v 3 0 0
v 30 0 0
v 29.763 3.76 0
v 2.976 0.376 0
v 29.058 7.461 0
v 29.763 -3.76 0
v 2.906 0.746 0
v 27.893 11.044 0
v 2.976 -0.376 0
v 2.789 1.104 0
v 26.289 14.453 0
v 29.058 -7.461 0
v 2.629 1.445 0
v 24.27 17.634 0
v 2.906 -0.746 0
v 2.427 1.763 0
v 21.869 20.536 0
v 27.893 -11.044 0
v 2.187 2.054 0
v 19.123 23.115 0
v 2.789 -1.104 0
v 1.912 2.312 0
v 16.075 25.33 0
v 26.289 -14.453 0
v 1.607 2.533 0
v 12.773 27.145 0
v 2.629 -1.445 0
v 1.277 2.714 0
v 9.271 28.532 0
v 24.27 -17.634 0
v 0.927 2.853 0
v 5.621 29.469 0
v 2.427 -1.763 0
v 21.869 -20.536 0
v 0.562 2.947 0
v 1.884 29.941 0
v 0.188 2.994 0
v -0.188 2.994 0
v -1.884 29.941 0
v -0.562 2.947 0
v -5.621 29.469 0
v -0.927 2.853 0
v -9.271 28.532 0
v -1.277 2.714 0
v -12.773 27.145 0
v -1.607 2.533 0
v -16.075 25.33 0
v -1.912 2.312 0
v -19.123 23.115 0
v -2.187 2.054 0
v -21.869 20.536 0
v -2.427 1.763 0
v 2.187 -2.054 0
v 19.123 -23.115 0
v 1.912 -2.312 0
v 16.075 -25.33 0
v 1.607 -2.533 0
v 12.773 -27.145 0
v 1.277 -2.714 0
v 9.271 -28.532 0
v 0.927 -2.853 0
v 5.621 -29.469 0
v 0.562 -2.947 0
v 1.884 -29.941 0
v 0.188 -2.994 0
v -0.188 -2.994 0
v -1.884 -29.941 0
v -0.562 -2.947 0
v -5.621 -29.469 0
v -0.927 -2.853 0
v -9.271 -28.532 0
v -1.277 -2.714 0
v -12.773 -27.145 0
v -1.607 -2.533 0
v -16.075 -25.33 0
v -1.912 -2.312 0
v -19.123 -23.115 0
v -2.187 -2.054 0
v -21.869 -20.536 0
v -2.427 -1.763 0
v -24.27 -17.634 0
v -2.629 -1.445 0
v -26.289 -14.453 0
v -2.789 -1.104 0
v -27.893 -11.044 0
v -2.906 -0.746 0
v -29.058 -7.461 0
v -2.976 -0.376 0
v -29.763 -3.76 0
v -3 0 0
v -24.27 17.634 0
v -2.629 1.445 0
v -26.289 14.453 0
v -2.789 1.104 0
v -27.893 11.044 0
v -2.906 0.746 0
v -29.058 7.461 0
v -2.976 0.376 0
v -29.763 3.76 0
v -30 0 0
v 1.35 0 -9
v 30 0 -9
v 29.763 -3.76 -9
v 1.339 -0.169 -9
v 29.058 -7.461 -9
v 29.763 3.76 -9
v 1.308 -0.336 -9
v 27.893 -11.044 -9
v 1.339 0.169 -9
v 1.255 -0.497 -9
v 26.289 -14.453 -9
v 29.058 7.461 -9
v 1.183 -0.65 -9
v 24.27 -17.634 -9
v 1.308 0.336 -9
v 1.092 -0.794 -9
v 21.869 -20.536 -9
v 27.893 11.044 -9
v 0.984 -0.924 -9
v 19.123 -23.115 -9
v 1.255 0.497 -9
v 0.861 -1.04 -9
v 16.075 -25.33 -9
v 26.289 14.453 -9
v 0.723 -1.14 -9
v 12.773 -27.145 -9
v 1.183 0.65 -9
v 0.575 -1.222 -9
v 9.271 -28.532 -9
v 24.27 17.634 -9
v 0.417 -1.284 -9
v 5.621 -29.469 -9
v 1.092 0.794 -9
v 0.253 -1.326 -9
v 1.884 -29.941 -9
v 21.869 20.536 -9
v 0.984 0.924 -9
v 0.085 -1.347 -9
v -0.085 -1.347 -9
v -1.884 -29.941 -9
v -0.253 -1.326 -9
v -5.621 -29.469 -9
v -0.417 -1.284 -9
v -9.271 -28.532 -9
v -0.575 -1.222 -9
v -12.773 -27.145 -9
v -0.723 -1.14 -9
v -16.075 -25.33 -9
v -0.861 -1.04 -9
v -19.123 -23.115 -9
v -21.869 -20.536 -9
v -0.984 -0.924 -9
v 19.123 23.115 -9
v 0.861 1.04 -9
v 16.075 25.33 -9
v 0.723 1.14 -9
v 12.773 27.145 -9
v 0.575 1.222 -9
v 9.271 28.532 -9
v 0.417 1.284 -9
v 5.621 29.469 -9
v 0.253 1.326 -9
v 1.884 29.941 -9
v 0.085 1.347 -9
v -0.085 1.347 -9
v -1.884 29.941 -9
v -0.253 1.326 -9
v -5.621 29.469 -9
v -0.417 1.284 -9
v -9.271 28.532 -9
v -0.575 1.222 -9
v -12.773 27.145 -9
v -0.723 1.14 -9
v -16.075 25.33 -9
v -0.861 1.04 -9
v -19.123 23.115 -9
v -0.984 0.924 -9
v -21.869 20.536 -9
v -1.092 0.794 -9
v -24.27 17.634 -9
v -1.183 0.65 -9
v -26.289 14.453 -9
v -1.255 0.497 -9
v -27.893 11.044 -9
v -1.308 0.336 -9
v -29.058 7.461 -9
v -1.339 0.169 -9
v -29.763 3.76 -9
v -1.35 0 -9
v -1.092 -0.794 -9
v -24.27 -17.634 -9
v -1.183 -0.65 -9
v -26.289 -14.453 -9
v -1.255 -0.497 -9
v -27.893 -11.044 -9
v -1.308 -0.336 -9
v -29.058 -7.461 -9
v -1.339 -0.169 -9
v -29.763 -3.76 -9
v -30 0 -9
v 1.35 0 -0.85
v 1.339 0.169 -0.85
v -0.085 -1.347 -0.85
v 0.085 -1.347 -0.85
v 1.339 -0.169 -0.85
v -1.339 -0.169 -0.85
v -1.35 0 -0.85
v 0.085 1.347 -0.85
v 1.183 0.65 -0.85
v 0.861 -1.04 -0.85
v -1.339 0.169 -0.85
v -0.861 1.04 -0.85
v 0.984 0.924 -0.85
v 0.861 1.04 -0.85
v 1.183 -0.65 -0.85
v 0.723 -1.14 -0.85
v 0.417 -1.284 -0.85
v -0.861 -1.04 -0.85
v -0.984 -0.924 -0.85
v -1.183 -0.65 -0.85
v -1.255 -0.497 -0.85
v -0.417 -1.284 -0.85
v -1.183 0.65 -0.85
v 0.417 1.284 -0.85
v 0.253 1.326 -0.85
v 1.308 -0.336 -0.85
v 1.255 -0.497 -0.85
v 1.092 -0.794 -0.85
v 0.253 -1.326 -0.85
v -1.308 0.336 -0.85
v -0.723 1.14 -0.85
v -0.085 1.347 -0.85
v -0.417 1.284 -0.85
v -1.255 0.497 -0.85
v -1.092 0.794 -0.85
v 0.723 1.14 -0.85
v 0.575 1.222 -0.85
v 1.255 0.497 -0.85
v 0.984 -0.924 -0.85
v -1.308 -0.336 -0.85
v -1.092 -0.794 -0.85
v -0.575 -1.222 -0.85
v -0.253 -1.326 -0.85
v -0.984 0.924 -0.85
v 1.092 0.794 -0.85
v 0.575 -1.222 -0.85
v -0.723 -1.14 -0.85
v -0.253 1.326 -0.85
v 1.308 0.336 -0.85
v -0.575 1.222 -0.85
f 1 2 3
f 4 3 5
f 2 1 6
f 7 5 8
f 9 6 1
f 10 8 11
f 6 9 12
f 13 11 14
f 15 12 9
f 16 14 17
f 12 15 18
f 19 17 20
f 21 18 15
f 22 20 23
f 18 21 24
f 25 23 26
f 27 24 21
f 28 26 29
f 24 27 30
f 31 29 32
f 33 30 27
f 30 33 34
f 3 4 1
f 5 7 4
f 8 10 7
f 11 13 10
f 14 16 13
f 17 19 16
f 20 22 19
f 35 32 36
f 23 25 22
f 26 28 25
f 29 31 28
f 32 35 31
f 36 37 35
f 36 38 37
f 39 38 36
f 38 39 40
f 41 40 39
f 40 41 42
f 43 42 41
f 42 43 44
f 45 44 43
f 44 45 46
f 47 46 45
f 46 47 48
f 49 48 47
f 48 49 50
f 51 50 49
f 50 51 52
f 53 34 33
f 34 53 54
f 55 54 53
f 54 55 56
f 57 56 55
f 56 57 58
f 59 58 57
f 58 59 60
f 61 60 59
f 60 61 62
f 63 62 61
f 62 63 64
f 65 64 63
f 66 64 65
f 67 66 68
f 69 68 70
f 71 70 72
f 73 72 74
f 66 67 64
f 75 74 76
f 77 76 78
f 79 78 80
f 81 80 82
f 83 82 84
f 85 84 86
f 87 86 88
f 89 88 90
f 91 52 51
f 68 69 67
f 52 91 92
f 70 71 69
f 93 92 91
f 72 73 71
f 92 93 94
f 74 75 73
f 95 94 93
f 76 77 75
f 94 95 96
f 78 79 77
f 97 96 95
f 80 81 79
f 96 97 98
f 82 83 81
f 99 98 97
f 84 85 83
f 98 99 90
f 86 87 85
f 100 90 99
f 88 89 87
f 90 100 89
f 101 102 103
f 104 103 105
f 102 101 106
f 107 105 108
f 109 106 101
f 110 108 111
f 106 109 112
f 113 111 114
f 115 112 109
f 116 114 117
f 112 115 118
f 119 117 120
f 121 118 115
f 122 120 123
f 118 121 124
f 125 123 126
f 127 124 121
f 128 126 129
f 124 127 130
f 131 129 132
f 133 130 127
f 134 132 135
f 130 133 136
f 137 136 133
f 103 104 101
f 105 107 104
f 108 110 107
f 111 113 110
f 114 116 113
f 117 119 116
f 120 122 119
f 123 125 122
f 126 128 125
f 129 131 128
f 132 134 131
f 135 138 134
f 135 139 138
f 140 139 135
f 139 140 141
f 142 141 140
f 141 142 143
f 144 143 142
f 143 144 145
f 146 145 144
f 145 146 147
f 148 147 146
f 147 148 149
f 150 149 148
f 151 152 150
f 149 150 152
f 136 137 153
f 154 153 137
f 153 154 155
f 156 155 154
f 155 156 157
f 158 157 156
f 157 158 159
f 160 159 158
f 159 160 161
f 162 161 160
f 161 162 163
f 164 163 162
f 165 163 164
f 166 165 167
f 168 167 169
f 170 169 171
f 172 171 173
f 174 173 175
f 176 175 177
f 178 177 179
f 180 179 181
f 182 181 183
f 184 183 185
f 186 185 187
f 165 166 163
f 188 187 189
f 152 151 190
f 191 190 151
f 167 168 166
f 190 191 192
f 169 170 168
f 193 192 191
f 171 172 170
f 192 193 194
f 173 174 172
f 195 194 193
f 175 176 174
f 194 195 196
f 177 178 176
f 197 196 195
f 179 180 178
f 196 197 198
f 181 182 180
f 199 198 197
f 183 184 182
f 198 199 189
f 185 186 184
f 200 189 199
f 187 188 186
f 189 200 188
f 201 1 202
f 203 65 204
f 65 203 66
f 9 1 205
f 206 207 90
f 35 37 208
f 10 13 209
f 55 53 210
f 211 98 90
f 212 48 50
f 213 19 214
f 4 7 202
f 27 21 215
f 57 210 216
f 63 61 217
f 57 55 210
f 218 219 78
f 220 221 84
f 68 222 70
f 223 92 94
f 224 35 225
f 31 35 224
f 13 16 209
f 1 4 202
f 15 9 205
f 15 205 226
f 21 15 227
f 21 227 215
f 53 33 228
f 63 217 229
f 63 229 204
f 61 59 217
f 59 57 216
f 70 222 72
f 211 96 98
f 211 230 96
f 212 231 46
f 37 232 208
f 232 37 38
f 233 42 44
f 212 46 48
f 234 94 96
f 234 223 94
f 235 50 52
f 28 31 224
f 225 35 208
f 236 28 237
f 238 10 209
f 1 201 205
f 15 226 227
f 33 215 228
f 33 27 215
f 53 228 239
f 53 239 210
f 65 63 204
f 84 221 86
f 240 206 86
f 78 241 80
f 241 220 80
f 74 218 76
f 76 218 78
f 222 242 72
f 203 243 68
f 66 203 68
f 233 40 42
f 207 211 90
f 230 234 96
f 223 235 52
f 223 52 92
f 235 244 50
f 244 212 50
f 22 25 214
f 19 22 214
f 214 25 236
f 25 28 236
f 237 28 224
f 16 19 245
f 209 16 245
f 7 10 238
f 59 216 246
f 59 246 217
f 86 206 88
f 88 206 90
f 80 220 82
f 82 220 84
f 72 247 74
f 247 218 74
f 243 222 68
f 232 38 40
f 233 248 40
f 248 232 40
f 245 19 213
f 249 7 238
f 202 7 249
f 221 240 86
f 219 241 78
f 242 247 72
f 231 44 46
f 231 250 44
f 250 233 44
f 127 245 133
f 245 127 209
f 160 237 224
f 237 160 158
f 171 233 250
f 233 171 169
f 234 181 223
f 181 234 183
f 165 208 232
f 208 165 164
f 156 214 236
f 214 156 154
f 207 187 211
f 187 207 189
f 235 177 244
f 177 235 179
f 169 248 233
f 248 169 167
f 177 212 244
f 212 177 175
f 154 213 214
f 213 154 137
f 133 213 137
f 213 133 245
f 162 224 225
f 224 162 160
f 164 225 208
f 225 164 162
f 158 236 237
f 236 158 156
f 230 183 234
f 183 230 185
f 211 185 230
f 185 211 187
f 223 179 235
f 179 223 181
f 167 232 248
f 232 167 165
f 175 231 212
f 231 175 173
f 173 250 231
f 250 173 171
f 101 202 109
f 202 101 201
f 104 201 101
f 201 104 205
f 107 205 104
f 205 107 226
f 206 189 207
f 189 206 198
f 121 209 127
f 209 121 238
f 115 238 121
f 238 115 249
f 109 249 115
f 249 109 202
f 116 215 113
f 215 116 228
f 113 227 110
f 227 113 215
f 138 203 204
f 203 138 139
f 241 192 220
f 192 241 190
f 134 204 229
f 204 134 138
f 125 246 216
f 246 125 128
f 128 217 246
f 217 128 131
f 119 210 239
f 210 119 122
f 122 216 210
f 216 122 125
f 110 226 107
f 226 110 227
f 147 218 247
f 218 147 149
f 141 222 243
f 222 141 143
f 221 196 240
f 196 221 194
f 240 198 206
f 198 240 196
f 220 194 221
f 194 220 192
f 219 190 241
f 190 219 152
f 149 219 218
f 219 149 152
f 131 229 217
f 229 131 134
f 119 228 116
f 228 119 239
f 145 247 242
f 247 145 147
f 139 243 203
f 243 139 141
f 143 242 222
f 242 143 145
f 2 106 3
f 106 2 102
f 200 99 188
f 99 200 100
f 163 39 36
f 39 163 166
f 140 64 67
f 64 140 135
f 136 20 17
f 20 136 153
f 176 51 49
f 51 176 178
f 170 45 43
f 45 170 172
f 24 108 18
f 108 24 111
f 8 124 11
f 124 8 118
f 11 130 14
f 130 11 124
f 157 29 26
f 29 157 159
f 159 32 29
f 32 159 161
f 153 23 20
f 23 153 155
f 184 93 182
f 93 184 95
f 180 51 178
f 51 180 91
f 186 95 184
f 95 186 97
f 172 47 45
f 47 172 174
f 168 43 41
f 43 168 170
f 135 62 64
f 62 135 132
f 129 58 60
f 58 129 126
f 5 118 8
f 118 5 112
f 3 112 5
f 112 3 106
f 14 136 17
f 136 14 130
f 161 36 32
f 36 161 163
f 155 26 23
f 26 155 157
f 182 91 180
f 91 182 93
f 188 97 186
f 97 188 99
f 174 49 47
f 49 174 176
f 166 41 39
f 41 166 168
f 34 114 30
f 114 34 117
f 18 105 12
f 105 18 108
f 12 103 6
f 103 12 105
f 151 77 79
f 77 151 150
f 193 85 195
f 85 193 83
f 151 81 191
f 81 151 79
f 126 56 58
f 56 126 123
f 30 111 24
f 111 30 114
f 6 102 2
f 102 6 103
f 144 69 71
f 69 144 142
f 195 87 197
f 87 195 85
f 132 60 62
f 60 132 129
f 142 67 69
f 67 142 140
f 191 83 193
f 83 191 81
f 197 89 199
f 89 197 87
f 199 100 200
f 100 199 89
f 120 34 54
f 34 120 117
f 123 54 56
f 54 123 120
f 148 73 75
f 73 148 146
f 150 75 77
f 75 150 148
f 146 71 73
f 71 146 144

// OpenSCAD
$fn = 50;


difference() {
	union() {
		translate(v = [0, 0, -9.0000000000]) {
			cylinder(h = 9, r = 30.0000000000);
		}
	}
	union() {
		translate(v = [0, 0, 0]) {
			rotate(a = [0, 0, 0]) {
				difference() {
					union() {
						#translate(v = [0, 0, -9.0000000000]) {
							cylinder(h = 9, r = 1.0000000000);
						}
						#translate(v = [0, 0, -0.8500000000]) {
							cylinder(h = 0.8500000000, r1 = 1.3500000000, r2 = 3.0000000000);
						}
						#translate(v = [0, 0, -9.0000000000]) {
							cylinder(h = 9, r = 1.3500000000);
						}
						#translate(v = [0, 0, -9.0000000000]) {
							cylinder(h = 9, r = 1.0000000000);
						}
					}
					union();
				}
			}
		}
	}
}
